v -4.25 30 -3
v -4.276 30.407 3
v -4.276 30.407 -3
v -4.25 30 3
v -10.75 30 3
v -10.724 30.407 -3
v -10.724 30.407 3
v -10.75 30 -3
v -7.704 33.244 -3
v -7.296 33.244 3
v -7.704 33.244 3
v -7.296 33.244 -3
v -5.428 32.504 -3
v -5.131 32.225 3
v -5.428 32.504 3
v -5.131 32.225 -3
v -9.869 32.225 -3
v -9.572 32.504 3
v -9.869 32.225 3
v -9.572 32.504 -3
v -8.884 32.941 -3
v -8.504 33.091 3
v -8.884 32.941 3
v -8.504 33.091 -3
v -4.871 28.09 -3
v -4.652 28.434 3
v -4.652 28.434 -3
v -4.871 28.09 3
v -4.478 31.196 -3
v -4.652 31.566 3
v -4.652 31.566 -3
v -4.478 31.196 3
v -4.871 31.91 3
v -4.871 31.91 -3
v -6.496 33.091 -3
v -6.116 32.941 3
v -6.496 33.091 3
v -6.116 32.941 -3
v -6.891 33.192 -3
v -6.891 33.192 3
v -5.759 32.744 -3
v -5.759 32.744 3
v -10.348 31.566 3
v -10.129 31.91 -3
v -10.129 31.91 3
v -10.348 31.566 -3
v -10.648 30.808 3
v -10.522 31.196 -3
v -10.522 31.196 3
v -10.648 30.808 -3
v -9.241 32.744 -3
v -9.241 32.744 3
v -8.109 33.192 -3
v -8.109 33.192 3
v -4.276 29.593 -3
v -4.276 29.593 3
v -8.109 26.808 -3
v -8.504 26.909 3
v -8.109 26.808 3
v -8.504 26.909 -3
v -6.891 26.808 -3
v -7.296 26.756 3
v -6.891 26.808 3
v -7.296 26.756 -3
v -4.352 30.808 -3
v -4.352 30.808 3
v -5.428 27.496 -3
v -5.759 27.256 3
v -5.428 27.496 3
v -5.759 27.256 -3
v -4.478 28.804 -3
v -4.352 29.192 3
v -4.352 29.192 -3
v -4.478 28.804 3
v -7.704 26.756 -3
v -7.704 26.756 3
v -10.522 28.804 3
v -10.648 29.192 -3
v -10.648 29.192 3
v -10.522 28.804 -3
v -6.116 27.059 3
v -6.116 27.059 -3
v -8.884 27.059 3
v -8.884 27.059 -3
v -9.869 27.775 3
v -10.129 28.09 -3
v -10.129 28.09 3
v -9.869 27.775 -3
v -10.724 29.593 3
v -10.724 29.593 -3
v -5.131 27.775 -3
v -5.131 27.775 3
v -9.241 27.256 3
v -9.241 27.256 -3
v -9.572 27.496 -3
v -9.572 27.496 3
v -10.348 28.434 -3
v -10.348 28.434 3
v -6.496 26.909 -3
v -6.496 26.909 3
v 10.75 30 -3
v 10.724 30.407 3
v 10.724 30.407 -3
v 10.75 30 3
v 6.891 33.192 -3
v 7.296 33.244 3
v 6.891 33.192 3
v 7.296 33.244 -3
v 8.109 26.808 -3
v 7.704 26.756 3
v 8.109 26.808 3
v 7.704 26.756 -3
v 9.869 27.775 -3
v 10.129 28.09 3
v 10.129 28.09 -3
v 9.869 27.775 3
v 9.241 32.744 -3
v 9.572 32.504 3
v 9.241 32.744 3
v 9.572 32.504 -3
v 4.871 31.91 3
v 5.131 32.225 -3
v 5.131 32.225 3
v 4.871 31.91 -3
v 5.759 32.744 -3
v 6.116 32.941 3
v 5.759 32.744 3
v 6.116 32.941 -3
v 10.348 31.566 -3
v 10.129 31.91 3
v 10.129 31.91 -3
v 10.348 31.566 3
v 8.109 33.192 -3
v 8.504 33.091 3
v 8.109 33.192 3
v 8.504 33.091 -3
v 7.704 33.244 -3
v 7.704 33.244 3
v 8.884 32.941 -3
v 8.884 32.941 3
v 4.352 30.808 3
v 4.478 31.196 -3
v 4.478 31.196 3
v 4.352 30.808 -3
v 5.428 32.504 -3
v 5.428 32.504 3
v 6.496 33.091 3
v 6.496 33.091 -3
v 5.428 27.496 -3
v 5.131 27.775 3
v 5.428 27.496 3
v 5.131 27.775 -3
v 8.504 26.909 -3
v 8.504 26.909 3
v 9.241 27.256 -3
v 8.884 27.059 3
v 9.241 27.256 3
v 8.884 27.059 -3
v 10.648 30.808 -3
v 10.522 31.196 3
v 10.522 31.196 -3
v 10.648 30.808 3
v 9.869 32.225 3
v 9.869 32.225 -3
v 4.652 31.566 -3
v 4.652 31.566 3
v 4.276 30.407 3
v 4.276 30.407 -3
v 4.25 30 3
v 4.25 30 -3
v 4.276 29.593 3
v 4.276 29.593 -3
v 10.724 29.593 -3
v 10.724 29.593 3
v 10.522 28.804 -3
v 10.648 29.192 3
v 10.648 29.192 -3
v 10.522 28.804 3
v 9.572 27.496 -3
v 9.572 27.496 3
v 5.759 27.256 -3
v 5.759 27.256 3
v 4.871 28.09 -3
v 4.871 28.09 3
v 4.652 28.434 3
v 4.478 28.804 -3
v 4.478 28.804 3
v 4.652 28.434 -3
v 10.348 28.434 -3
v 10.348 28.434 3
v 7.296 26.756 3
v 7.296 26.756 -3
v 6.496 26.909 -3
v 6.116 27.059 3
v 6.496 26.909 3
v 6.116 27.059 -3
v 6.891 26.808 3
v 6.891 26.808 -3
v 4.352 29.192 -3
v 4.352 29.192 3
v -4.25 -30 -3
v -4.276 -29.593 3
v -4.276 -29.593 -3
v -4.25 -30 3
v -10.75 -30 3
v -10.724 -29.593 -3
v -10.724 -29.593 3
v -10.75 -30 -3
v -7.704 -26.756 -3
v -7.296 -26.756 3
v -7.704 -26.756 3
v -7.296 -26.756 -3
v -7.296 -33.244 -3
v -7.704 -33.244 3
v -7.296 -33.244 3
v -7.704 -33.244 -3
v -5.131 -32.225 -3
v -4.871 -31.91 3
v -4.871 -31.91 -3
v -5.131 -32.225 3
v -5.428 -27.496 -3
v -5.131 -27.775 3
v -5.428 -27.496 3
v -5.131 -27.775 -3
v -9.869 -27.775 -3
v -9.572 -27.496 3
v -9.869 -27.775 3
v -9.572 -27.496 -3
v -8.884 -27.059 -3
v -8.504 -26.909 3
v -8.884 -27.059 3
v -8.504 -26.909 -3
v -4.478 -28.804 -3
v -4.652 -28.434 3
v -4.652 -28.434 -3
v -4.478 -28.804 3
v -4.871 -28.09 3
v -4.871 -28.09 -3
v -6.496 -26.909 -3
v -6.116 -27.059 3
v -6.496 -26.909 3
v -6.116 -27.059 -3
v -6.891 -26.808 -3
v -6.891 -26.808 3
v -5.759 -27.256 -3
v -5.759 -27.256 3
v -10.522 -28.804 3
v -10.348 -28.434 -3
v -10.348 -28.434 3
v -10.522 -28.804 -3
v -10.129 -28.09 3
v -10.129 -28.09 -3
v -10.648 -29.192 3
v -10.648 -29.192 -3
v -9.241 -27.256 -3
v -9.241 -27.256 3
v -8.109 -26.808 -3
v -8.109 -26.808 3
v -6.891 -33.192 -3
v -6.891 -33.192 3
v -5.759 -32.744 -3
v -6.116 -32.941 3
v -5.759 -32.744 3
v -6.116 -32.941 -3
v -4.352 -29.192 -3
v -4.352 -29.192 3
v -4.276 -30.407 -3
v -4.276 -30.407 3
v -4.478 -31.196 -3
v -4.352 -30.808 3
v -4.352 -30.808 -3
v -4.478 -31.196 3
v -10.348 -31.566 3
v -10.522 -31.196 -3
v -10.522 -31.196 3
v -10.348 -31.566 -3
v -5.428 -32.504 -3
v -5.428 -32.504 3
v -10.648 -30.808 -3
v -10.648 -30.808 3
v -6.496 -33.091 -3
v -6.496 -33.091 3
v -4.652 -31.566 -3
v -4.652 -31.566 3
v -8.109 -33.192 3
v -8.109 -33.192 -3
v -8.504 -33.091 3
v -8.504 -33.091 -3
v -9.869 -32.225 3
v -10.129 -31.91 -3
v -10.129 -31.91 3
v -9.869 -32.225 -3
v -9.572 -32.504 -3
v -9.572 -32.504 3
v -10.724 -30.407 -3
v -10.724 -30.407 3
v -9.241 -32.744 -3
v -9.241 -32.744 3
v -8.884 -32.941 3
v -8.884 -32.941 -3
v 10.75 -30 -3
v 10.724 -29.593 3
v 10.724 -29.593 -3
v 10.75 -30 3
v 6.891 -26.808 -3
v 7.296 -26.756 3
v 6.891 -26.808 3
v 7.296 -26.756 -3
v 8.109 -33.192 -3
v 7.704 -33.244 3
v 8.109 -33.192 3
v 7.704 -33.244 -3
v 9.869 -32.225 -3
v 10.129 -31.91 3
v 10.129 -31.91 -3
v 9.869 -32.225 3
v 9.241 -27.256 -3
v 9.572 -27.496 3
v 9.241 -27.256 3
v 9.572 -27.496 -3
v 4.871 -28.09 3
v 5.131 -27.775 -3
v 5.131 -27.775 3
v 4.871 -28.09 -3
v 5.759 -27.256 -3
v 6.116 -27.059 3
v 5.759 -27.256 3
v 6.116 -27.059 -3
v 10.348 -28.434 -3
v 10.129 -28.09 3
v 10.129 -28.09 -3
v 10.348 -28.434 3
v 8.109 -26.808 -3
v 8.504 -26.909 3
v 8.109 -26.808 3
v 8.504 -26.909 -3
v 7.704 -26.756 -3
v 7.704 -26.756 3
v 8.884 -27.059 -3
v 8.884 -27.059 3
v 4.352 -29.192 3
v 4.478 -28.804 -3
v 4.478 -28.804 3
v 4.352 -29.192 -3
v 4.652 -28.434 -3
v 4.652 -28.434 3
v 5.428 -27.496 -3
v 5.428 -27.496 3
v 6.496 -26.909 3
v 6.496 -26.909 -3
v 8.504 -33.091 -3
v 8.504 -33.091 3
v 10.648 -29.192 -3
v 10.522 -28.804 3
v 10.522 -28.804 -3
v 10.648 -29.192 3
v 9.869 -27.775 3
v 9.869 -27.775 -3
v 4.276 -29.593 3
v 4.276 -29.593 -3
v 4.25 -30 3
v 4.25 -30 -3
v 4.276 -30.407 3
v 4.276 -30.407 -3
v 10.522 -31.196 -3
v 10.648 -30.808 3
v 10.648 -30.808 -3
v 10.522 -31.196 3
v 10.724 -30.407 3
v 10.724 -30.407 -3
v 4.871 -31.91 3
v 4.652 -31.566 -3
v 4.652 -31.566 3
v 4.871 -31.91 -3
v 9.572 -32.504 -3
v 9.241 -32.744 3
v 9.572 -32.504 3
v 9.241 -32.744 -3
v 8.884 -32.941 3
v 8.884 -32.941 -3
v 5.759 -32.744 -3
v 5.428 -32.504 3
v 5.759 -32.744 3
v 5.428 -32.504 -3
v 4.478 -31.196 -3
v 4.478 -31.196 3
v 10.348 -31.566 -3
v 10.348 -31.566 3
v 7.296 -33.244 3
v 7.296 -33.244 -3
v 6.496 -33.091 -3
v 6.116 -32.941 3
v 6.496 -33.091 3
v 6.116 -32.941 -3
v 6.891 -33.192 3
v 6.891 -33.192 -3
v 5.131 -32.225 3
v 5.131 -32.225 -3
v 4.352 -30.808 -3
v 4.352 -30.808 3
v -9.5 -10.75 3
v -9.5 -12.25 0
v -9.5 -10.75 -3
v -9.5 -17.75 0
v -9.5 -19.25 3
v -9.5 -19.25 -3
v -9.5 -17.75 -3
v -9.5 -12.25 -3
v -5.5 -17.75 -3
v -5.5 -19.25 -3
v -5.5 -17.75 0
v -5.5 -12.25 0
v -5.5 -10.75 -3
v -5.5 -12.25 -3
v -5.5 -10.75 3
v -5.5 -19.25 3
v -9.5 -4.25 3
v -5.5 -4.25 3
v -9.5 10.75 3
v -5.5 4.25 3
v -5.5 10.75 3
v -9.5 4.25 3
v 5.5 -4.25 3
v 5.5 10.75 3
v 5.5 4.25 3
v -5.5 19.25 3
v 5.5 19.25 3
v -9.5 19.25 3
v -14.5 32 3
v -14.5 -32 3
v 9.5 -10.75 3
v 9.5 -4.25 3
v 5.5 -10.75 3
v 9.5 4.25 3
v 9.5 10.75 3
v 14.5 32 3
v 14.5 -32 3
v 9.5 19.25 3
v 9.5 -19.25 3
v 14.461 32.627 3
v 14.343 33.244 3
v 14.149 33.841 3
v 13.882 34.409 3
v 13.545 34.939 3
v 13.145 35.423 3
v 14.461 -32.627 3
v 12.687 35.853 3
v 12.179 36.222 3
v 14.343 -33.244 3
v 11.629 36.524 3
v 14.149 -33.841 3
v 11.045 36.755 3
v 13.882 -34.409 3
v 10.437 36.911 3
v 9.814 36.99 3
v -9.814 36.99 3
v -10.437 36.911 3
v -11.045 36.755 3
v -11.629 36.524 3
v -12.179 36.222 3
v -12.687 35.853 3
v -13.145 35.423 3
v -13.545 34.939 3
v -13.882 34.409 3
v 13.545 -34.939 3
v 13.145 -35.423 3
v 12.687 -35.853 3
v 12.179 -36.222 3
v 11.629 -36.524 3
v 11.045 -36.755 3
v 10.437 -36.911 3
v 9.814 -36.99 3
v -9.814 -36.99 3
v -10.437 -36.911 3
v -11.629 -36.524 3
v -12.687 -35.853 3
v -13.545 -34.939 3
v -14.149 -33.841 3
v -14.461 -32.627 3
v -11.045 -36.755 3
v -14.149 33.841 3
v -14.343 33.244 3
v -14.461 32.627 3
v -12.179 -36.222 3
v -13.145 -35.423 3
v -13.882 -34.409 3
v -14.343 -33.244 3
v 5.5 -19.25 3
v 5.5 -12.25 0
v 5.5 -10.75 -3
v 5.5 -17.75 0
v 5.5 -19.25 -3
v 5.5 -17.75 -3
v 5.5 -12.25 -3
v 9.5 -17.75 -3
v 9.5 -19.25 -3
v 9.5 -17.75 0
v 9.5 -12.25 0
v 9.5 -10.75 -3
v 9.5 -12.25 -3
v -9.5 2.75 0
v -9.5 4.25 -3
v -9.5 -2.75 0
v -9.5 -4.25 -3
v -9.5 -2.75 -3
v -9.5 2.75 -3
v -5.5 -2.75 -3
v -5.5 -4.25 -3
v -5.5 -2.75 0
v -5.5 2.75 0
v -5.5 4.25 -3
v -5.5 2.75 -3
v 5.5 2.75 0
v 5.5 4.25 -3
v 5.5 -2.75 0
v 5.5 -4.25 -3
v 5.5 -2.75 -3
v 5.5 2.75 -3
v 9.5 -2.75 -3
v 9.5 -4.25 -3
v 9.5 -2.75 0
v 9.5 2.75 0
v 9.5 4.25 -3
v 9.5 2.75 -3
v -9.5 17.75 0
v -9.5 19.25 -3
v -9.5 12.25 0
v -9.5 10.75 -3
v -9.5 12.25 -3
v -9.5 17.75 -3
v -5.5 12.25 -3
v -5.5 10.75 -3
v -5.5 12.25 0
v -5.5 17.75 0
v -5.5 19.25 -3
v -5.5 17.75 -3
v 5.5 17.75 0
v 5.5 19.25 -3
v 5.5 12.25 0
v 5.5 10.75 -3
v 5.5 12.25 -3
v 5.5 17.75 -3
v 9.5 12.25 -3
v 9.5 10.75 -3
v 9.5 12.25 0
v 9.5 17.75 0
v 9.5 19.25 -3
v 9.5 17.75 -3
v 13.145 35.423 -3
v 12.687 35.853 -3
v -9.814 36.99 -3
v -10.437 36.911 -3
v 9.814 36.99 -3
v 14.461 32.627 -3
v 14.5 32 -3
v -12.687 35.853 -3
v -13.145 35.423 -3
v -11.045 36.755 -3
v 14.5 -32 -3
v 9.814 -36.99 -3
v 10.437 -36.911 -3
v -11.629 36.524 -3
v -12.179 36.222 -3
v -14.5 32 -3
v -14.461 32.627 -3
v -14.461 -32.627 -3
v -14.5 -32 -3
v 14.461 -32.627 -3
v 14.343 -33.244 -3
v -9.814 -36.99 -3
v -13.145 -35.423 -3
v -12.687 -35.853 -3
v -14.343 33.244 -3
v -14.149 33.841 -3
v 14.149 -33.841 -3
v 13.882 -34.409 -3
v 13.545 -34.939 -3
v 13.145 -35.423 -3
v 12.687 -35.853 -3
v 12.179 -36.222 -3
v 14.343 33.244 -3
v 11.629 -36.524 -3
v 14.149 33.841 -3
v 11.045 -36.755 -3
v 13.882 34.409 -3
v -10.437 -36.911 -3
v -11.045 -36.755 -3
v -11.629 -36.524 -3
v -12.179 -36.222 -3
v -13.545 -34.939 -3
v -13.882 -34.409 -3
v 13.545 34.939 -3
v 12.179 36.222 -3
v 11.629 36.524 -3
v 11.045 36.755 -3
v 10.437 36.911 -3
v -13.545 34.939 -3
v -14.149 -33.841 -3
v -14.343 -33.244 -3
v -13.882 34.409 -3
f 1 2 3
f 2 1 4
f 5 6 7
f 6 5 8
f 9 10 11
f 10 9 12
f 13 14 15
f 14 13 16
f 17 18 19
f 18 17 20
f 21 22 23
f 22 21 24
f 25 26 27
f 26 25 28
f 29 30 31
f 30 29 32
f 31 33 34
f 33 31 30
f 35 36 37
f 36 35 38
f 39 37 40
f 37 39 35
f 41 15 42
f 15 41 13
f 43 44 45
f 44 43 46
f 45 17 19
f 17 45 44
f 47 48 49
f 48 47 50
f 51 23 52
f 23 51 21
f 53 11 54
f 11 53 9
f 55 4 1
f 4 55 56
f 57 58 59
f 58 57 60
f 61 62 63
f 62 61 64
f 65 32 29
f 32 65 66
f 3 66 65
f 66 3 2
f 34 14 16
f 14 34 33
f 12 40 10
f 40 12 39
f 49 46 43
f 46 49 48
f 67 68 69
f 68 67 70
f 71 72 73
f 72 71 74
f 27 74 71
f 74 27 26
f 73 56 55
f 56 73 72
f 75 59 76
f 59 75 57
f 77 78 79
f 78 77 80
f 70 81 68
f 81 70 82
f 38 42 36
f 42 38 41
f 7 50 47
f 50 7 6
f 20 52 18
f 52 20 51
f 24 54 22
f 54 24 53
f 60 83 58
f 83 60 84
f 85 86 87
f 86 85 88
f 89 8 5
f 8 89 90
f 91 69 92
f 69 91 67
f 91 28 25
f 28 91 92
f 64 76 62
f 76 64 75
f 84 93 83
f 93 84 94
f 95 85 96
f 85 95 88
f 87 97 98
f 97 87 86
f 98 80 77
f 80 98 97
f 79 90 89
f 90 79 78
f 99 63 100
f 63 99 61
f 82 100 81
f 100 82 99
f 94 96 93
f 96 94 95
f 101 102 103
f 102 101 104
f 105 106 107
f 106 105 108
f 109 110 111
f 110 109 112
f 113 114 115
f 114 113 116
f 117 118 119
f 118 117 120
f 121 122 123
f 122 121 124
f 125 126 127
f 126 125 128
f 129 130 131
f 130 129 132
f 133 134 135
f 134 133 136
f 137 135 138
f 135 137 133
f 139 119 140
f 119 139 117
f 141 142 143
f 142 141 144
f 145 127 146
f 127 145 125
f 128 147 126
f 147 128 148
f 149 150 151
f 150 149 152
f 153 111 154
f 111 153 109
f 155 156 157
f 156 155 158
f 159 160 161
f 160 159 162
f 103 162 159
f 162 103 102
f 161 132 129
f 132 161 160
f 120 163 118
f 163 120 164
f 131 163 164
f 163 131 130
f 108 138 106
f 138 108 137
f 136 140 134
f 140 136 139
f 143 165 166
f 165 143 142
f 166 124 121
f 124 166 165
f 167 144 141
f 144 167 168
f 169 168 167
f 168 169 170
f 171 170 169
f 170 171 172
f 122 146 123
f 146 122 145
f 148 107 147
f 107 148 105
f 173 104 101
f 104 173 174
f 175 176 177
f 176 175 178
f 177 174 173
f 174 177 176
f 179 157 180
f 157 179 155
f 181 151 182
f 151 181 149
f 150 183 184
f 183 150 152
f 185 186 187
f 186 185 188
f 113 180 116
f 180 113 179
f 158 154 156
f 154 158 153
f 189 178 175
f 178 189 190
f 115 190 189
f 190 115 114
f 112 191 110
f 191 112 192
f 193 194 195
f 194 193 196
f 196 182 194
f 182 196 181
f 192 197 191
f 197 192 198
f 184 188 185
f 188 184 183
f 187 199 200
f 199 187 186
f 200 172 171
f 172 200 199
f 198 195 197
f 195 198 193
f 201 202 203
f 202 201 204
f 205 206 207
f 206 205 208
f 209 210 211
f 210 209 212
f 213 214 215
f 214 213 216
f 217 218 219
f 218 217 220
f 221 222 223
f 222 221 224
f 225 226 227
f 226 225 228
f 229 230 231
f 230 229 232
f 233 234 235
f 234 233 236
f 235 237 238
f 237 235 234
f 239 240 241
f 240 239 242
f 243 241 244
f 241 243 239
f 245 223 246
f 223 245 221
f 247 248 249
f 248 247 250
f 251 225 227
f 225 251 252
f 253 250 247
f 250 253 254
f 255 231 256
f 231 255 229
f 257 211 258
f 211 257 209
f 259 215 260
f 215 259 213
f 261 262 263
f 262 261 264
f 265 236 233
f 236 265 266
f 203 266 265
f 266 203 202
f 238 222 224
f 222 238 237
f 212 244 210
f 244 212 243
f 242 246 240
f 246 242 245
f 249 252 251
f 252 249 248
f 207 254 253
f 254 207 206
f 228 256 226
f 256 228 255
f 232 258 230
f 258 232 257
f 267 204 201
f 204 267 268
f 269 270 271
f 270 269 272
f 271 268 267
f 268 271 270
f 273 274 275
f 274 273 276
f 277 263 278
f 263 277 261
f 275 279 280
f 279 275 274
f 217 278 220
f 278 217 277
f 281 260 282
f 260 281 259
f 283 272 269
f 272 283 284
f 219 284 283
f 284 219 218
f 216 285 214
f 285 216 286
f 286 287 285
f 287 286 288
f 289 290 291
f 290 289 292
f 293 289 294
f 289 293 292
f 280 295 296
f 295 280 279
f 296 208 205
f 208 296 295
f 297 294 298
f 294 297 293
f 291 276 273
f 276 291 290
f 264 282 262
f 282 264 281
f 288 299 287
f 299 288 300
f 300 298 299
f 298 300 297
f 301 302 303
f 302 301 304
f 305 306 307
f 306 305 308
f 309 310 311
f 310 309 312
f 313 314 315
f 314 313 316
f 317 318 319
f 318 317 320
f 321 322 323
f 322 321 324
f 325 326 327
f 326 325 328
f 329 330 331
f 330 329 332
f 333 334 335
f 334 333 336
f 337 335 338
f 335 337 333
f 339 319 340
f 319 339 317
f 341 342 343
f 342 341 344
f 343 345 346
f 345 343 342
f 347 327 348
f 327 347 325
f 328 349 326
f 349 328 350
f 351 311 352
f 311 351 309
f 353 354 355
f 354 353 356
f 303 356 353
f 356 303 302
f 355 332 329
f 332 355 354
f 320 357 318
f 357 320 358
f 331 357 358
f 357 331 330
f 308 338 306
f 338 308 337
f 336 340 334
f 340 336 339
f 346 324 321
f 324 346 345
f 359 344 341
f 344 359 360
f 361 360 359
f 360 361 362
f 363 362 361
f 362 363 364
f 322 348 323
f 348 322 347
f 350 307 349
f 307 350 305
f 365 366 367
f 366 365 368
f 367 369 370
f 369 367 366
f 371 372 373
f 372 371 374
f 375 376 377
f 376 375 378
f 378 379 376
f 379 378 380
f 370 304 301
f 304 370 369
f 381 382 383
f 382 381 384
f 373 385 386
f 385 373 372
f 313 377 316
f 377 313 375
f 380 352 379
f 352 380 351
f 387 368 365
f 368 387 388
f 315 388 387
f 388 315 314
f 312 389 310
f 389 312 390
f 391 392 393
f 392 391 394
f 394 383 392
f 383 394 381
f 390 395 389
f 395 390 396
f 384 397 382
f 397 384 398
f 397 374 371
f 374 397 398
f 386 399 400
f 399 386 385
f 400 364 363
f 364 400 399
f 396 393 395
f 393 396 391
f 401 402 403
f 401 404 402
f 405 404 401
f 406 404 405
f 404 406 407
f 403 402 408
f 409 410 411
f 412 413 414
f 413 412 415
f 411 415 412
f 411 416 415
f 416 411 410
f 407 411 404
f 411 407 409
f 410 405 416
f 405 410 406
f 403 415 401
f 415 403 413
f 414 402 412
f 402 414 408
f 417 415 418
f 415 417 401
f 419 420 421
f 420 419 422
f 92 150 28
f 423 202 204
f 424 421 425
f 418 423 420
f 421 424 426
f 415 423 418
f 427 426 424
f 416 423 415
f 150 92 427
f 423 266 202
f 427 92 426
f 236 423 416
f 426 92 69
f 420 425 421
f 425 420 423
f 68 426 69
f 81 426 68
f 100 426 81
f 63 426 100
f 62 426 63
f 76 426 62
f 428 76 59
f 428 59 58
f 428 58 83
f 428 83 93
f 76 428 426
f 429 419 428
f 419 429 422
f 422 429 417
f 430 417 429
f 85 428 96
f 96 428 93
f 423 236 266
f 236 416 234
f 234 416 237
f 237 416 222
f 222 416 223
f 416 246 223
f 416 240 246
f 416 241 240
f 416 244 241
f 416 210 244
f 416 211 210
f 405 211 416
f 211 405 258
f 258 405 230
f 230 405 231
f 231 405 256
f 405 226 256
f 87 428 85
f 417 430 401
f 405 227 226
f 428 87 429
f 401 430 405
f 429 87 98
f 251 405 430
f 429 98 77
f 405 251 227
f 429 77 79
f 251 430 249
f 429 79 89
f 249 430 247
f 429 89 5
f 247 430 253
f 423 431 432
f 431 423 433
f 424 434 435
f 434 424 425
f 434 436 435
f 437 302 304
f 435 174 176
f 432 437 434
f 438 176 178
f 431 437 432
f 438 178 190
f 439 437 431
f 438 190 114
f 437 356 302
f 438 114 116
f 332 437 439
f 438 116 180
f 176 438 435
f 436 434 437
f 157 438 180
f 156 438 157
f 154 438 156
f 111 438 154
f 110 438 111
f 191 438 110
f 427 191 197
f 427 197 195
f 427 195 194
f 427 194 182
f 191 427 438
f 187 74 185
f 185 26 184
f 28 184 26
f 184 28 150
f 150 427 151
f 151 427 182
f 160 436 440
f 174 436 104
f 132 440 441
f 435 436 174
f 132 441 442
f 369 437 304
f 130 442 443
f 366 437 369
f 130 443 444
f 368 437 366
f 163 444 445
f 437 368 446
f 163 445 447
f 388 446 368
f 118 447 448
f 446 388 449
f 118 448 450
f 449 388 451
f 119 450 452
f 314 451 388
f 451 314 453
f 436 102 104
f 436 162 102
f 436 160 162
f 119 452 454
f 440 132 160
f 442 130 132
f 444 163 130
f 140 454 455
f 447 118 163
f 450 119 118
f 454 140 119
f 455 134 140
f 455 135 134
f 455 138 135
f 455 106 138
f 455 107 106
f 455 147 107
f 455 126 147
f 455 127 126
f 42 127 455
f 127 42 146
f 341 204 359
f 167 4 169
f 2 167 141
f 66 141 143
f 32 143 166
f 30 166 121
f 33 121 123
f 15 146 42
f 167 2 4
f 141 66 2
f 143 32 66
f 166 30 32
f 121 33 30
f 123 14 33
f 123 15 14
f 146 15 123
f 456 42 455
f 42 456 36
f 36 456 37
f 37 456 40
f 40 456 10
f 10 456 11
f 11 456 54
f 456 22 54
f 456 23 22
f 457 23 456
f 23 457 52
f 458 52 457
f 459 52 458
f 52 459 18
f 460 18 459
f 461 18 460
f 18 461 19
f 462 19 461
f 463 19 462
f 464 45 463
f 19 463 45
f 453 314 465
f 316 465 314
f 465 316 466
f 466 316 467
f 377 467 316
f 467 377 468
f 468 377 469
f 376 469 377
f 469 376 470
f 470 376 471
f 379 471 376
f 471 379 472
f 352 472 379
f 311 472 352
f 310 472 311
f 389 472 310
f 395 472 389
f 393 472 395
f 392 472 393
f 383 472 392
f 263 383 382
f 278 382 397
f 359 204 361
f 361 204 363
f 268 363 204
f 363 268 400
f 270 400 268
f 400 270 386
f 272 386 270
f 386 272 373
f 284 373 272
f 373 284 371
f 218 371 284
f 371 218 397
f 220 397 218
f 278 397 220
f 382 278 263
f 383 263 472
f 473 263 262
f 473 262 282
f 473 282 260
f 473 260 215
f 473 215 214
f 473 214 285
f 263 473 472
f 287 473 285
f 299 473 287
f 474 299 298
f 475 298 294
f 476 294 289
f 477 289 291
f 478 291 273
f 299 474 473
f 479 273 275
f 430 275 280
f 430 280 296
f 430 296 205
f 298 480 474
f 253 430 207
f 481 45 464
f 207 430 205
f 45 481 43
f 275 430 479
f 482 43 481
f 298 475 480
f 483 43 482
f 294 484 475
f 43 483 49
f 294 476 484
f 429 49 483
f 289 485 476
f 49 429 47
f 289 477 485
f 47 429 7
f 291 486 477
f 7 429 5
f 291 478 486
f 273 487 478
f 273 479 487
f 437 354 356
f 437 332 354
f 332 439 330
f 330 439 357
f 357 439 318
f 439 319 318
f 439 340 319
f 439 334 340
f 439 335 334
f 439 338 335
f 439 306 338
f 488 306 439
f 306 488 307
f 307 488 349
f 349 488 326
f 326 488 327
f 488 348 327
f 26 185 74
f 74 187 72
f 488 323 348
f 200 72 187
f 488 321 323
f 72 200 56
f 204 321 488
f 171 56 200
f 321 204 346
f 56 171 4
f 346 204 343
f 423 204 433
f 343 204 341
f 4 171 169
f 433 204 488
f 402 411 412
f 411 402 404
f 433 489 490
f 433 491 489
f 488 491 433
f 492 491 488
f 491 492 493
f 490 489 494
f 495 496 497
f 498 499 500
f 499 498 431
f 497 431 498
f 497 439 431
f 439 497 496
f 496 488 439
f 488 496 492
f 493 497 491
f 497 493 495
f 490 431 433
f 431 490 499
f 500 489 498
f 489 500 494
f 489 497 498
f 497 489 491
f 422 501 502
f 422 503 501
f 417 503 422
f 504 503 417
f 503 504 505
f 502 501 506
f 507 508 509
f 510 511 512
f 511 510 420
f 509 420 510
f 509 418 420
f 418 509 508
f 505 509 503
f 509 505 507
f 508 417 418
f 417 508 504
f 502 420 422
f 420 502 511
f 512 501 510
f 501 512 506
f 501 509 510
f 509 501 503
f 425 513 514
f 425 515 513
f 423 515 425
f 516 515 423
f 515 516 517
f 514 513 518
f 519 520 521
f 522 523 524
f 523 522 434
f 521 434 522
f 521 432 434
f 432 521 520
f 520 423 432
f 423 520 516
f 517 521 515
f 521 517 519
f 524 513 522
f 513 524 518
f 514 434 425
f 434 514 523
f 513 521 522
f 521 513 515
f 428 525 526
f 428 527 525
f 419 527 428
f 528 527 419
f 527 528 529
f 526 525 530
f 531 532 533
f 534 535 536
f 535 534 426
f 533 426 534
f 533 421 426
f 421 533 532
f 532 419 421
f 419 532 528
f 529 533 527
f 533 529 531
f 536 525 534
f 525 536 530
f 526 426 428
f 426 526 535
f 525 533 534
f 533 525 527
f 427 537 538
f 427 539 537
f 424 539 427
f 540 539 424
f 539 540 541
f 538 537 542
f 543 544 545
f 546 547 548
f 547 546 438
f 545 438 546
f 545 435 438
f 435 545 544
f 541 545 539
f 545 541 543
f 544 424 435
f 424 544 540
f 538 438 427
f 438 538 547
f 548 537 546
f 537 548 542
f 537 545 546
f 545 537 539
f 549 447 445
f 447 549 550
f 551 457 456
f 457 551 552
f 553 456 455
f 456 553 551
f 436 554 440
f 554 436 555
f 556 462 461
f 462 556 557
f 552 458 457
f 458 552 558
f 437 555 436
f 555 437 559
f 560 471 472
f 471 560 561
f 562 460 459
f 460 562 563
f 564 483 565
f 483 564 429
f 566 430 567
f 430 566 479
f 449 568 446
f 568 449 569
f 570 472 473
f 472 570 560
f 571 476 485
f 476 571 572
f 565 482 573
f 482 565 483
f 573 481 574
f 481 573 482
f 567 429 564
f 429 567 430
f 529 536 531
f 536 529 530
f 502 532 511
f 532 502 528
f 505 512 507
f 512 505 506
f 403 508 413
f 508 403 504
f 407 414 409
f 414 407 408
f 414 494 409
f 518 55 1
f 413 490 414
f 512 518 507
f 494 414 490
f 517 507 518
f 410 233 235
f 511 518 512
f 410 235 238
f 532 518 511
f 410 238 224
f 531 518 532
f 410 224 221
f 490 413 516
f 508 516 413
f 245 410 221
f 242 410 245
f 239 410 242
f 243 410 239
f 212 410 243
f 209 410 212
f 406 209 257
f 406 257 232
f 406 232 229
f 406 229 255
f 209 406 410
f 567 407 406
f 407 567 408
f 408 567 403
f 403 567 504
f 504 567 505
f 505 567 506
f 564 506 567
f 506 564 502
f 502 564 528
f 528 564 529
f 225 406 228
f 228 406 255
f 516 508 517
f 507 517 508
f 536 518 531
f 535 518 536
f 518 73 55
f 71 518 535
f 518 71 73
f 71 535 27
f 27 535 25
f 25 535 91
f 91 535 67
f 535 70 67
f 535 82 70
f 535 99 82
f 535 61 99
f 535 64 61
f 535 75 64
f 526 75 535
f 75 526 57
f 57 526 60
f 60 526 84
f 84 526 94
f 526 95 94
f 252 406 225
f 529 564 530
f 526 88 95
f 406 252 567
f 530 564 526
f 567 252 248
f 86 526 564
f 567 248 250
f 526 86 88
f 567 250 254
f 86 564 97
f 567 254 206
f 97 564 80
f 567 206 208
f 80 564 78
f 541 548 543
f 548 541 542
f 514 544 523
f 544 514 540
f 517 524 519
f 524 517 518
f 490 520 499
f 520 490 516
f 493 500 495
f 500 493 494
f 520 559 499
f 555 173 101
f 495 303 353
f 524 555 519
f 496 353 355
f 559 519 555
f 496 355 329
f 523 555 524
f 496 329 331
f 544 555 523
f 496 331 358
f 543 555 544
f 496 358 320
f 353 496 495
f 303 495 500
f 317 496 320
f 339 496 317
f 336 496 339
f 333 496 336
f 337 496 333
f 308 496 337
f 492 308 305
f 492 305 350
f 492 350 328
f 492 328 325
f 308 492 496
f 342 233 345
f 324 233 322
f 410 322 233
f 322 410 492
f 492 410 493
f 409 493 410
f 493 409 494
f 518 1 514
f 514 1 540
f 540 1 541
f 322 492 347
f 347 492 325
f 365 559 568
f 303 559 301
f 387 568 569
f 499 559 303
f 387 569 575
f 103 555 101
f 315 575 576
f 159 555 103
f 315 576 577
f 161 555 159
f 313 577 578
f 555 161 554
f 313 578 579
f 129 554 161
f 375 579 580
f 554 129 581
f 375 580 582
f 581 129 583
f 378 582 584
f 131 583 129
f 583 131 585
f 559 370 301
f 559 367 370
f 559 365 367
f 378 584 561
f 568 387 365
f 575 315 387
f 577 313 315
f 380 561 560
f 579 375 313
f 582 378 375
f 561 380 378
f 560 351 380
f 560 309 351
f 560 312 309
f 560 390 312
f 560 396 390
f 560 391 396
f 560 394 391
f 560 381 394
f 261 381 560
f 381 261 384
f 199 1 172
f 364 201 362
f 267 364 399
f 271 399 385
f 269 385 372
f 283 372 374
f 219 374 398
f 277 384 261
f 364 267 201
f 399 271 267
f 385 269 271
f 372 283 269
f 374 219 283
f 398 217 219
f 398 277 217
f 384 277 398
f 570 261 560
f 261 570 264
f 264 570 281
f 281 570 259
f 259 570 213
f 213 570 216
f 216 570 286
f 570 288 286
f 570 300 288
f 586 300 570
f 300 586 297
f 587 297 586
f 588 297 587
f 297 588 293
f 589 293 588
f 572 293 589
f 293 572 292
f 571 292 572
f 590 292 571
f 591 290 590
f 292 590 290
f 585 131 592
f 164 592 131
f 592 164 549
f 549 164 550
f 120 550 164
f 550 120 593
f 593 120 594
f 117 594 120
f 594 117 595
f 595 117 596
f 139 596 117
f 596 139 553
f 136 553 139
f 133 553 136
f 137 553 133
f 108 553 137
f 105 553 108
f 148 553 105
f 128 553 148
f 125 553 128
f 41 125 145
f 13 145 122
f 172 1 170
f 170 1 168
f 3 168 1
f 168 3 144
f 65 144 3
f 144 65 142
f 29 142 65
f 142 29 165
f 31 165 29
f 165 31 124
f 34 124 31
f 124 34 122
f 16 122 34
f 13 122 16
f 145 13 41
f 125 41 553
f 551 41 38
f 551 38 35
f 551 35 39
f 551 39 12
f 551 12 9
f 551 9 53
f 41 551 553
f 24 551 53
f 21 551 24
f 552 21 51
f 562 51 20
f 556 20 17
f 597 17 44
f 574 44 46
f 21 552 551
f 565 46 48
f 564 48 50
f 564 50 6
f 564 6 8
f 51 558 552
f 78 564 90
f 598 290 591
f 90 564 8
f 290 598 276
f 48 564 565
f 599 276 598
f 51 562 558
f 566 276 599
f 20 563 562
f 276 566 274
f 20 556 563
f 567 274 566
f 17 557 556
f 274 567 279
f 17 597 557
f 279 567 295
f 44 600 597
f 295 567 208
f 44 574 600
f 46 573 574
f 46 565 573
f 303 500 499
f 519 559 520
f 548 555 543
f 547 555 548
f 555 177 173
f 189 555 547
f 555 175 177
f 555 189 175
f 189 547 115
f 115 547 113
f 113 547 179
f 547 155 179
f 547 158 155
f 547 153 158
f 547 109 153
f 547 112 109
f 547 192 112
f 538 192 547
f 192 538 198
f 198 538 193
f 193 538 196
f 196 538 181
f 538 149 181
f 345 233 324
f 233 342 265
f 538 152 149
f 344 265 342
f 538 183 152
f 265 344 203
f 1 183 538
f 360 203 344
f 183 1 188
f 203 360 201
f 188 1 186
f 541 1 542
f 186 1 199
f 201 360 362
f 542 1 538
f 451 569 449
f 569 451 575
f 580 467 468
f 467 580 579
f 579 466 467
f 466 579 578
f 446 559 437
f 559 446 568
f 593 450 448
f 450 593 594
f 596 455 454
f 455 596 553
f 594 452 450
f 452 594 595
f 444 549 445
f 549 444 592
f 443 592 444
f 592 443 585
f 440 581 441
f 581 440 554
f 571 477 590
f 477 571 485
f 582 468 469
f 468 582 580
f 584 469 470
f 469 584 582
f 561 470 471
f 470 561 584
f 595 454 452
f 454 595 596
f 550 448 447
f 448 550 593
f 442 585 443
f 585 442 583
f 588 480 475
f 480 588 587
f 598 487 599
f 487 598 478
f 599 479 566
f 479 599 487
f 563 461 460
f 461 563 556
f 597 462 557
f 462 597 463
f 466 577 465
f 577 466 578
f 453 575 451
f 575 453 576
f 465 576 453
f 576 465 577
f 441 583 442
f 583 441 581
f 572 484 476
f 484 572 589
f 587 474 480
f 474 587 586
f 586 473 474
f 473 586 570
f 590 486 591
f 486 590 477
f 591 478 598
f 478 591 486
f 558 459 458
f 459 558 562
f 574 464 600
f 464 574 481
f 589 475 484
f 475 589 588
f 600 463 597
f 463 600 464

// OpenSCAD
$fn = 50;


difference() {
	union() {
		translate(v = [0, 0, -3.0000000000]) {
			rotate(a = [0, 0, 0]) {
				hull() {
					translate(v = [-9.5000000000, 32.0000000000, 0]) {
						rotate(a = [0, 0, 0]) {
							translate(v = [0, 0, 0]) {
								rotate(a = [0, 0, 0]) {
									cylinder(h = 6, r = 5);
								}
							}
						}
					}
					translate(v = [9.5000000000, 32.0000000000, 0]) {
						rotate(a = [0, 0, 0]) {
							translate(v = [0, 0, 0]) {
								rotate(a = [0, 0, 0]) {
									cylinder(h = 6, r = 5);
								}
							}
						}
					}
					translate(v = [-9.5000000000, -32.0000000000, 0]) {
						rotate(a = [0, 0, 0]) {
							translate(v = [0, 0, 0]) {
								rotate(a = [0, 0, 0]) {
									cylinder(h = 6, r = 5);
								}
							}
						}
					}
					translate(v = [9.5000000000, -32.0000000000, 0]) {
						rotate(a = [0, 0, 0]) {
							translate(v = [0, 0, 0]) {
								rotate(a = [0, 0, 0]) {
									cylinder(h = 6, r = 5);
								}
							}
						}
					}
				}
			}
		}
	}
	union() {
		translate(v = [-7.5000000000, 30.0000000000, -125.0000000000]) {
			rotate(a = [0, 0, 0]) {
				cylinder(h = 250, r = 3.2500000000);
			}
		}
		translate(v = [7.5000000000, 30.0000000000, -125.0000000000]) {
			rotate(a = [0, 0, 0]) {
				cylinder(h = 250, r = 3.2500000000);
			}
		}
		translate(v = [-7.5000000000, -30.0000000000, -125.0000000000]) {
			rotate(a = [0, 0, 0]) {
				cylinder(h = 250, r = 3.2500000000);
			}
		}
		translate(v = [7.5000000000, -30.0000000000, -125.0000000000]) {
			rotate(a = [0, 0, 0]) {
				cylinder(h = 250, r = 3.2500000000);
			}
		}
		translate(v = [-9.5000000000, -19.2500000000, -50]) {
			rotate(a = [0, 0, 0]) {
				cube(size = [4, 1.5000000000, 100]);
			}
		}
		translate(v = [-9.5000000000, -12.2500000000, -50]) {
			rotate(a = [0, 0, 0]) {
				cube(size = [4, 1.5000000000, 100]);
			}
		}
		translate(v = [-9.5000000000, -19.2500000000, 0]) {
			rotate(a = [0, 0, 0]) {
				cube(size = [4, 8.5000000000, 3]);
			}
		}
		translate(v = [5.5000000000, -19.2500000000, -50]) {
			rotate(a = [0, 0, 0]) {
				cube(size = [4, 1.5000000000, 100]);
			}
		}
		translate(v = [5.5000000000, -12.2500000000, -50]) {
			rotate(a = [0, 0, 0]) {
				cube(size = [4, 1.5000000000, 100]);
			}
		}
		translate(v = [5.5000000000, -19.2500000000, 0]) {
			rotate(a = [0, 0, 0]) {
				cube(size = [4, 8.5000000000, 3]);
			}
		}
		translate(v = [-9.5000000000, -4.2500000000, -50]) {
			rotate(a = [0, 0, 0]) {
				cube(size = [4, 1.5000000000, 100]);
			}
		}
		translate(v = [-9.5000000000, 2.7500000000, -50]) {
			rotate(a = [0, 0, 0]) {
				cube(size = [4, 1.5000000000, 100]);
			}
		}
		translate(v = [-9.5000000000, -4.2500000000, 0]) {
			rotate(a = [0, 0, 0]) {
				cube(size = [4, 8.5000000000, 3]);
			}
		}
		translate(v = [5.5000000000, -4.2500000000, -50]) {
			rotate(a = [0, 0, 0]) {
				cube(size = [4, 1.5000000000, 100]);
			}
		}
		translate(v = [5.5000000000, 2.7500000000, -50]) {
			rotate(a = [0, 0, 0]) {
				cube(size = [4, 1.5000000000, 100]);
			}
		}
		translate(v = [5.5000000000, -4.2500000000, 0]) {
			rotate(a = [0, 0, 0]) {
				cube(size = [4, 8.5000000000, 3]);
			}
		}
		translate(v = [-9.5000000000, 10.7500000000, -50]) {
			rotate(a = [0, 0, 0]) {
				cube(size = [4, 1.5000000000, 100]);
			}
		}
		translate(v = [-9.5000000000, 17.7500000000, -50]) {
			rotate(a = [0, 0, 0]) {
				cube(size = [4, 1.5000000000, 100]);
			}
		}
		translate(v = [-9.5000000000, 10.7500000000, 0]) {
			rotate(a = [0, 0, 0]) {
				cube(size = [4, 8.5000000000, 3]);
			}
		}
		translate(v = [5.5000000000, 10.7500000000, -50]) {
			rotate(a = [0, 0, 0]) {
				cube(size = [4, 1.5000000000, 100]);
			}
		}
		translate(v = [5.5000000000, 17.7500000000, -50]) {
			rotate(a = [0, 0, 0]) {
				cube(size = [4, 1.5000000000, 100]);
			}
		}
		translate(v = [5.5000000000, 10.7500000000, 0]) {
			rotate(a = [0, 0, 0]) {
				cube(size = [4, 8.5000000000, 3]);
			}
		}
	}
}
